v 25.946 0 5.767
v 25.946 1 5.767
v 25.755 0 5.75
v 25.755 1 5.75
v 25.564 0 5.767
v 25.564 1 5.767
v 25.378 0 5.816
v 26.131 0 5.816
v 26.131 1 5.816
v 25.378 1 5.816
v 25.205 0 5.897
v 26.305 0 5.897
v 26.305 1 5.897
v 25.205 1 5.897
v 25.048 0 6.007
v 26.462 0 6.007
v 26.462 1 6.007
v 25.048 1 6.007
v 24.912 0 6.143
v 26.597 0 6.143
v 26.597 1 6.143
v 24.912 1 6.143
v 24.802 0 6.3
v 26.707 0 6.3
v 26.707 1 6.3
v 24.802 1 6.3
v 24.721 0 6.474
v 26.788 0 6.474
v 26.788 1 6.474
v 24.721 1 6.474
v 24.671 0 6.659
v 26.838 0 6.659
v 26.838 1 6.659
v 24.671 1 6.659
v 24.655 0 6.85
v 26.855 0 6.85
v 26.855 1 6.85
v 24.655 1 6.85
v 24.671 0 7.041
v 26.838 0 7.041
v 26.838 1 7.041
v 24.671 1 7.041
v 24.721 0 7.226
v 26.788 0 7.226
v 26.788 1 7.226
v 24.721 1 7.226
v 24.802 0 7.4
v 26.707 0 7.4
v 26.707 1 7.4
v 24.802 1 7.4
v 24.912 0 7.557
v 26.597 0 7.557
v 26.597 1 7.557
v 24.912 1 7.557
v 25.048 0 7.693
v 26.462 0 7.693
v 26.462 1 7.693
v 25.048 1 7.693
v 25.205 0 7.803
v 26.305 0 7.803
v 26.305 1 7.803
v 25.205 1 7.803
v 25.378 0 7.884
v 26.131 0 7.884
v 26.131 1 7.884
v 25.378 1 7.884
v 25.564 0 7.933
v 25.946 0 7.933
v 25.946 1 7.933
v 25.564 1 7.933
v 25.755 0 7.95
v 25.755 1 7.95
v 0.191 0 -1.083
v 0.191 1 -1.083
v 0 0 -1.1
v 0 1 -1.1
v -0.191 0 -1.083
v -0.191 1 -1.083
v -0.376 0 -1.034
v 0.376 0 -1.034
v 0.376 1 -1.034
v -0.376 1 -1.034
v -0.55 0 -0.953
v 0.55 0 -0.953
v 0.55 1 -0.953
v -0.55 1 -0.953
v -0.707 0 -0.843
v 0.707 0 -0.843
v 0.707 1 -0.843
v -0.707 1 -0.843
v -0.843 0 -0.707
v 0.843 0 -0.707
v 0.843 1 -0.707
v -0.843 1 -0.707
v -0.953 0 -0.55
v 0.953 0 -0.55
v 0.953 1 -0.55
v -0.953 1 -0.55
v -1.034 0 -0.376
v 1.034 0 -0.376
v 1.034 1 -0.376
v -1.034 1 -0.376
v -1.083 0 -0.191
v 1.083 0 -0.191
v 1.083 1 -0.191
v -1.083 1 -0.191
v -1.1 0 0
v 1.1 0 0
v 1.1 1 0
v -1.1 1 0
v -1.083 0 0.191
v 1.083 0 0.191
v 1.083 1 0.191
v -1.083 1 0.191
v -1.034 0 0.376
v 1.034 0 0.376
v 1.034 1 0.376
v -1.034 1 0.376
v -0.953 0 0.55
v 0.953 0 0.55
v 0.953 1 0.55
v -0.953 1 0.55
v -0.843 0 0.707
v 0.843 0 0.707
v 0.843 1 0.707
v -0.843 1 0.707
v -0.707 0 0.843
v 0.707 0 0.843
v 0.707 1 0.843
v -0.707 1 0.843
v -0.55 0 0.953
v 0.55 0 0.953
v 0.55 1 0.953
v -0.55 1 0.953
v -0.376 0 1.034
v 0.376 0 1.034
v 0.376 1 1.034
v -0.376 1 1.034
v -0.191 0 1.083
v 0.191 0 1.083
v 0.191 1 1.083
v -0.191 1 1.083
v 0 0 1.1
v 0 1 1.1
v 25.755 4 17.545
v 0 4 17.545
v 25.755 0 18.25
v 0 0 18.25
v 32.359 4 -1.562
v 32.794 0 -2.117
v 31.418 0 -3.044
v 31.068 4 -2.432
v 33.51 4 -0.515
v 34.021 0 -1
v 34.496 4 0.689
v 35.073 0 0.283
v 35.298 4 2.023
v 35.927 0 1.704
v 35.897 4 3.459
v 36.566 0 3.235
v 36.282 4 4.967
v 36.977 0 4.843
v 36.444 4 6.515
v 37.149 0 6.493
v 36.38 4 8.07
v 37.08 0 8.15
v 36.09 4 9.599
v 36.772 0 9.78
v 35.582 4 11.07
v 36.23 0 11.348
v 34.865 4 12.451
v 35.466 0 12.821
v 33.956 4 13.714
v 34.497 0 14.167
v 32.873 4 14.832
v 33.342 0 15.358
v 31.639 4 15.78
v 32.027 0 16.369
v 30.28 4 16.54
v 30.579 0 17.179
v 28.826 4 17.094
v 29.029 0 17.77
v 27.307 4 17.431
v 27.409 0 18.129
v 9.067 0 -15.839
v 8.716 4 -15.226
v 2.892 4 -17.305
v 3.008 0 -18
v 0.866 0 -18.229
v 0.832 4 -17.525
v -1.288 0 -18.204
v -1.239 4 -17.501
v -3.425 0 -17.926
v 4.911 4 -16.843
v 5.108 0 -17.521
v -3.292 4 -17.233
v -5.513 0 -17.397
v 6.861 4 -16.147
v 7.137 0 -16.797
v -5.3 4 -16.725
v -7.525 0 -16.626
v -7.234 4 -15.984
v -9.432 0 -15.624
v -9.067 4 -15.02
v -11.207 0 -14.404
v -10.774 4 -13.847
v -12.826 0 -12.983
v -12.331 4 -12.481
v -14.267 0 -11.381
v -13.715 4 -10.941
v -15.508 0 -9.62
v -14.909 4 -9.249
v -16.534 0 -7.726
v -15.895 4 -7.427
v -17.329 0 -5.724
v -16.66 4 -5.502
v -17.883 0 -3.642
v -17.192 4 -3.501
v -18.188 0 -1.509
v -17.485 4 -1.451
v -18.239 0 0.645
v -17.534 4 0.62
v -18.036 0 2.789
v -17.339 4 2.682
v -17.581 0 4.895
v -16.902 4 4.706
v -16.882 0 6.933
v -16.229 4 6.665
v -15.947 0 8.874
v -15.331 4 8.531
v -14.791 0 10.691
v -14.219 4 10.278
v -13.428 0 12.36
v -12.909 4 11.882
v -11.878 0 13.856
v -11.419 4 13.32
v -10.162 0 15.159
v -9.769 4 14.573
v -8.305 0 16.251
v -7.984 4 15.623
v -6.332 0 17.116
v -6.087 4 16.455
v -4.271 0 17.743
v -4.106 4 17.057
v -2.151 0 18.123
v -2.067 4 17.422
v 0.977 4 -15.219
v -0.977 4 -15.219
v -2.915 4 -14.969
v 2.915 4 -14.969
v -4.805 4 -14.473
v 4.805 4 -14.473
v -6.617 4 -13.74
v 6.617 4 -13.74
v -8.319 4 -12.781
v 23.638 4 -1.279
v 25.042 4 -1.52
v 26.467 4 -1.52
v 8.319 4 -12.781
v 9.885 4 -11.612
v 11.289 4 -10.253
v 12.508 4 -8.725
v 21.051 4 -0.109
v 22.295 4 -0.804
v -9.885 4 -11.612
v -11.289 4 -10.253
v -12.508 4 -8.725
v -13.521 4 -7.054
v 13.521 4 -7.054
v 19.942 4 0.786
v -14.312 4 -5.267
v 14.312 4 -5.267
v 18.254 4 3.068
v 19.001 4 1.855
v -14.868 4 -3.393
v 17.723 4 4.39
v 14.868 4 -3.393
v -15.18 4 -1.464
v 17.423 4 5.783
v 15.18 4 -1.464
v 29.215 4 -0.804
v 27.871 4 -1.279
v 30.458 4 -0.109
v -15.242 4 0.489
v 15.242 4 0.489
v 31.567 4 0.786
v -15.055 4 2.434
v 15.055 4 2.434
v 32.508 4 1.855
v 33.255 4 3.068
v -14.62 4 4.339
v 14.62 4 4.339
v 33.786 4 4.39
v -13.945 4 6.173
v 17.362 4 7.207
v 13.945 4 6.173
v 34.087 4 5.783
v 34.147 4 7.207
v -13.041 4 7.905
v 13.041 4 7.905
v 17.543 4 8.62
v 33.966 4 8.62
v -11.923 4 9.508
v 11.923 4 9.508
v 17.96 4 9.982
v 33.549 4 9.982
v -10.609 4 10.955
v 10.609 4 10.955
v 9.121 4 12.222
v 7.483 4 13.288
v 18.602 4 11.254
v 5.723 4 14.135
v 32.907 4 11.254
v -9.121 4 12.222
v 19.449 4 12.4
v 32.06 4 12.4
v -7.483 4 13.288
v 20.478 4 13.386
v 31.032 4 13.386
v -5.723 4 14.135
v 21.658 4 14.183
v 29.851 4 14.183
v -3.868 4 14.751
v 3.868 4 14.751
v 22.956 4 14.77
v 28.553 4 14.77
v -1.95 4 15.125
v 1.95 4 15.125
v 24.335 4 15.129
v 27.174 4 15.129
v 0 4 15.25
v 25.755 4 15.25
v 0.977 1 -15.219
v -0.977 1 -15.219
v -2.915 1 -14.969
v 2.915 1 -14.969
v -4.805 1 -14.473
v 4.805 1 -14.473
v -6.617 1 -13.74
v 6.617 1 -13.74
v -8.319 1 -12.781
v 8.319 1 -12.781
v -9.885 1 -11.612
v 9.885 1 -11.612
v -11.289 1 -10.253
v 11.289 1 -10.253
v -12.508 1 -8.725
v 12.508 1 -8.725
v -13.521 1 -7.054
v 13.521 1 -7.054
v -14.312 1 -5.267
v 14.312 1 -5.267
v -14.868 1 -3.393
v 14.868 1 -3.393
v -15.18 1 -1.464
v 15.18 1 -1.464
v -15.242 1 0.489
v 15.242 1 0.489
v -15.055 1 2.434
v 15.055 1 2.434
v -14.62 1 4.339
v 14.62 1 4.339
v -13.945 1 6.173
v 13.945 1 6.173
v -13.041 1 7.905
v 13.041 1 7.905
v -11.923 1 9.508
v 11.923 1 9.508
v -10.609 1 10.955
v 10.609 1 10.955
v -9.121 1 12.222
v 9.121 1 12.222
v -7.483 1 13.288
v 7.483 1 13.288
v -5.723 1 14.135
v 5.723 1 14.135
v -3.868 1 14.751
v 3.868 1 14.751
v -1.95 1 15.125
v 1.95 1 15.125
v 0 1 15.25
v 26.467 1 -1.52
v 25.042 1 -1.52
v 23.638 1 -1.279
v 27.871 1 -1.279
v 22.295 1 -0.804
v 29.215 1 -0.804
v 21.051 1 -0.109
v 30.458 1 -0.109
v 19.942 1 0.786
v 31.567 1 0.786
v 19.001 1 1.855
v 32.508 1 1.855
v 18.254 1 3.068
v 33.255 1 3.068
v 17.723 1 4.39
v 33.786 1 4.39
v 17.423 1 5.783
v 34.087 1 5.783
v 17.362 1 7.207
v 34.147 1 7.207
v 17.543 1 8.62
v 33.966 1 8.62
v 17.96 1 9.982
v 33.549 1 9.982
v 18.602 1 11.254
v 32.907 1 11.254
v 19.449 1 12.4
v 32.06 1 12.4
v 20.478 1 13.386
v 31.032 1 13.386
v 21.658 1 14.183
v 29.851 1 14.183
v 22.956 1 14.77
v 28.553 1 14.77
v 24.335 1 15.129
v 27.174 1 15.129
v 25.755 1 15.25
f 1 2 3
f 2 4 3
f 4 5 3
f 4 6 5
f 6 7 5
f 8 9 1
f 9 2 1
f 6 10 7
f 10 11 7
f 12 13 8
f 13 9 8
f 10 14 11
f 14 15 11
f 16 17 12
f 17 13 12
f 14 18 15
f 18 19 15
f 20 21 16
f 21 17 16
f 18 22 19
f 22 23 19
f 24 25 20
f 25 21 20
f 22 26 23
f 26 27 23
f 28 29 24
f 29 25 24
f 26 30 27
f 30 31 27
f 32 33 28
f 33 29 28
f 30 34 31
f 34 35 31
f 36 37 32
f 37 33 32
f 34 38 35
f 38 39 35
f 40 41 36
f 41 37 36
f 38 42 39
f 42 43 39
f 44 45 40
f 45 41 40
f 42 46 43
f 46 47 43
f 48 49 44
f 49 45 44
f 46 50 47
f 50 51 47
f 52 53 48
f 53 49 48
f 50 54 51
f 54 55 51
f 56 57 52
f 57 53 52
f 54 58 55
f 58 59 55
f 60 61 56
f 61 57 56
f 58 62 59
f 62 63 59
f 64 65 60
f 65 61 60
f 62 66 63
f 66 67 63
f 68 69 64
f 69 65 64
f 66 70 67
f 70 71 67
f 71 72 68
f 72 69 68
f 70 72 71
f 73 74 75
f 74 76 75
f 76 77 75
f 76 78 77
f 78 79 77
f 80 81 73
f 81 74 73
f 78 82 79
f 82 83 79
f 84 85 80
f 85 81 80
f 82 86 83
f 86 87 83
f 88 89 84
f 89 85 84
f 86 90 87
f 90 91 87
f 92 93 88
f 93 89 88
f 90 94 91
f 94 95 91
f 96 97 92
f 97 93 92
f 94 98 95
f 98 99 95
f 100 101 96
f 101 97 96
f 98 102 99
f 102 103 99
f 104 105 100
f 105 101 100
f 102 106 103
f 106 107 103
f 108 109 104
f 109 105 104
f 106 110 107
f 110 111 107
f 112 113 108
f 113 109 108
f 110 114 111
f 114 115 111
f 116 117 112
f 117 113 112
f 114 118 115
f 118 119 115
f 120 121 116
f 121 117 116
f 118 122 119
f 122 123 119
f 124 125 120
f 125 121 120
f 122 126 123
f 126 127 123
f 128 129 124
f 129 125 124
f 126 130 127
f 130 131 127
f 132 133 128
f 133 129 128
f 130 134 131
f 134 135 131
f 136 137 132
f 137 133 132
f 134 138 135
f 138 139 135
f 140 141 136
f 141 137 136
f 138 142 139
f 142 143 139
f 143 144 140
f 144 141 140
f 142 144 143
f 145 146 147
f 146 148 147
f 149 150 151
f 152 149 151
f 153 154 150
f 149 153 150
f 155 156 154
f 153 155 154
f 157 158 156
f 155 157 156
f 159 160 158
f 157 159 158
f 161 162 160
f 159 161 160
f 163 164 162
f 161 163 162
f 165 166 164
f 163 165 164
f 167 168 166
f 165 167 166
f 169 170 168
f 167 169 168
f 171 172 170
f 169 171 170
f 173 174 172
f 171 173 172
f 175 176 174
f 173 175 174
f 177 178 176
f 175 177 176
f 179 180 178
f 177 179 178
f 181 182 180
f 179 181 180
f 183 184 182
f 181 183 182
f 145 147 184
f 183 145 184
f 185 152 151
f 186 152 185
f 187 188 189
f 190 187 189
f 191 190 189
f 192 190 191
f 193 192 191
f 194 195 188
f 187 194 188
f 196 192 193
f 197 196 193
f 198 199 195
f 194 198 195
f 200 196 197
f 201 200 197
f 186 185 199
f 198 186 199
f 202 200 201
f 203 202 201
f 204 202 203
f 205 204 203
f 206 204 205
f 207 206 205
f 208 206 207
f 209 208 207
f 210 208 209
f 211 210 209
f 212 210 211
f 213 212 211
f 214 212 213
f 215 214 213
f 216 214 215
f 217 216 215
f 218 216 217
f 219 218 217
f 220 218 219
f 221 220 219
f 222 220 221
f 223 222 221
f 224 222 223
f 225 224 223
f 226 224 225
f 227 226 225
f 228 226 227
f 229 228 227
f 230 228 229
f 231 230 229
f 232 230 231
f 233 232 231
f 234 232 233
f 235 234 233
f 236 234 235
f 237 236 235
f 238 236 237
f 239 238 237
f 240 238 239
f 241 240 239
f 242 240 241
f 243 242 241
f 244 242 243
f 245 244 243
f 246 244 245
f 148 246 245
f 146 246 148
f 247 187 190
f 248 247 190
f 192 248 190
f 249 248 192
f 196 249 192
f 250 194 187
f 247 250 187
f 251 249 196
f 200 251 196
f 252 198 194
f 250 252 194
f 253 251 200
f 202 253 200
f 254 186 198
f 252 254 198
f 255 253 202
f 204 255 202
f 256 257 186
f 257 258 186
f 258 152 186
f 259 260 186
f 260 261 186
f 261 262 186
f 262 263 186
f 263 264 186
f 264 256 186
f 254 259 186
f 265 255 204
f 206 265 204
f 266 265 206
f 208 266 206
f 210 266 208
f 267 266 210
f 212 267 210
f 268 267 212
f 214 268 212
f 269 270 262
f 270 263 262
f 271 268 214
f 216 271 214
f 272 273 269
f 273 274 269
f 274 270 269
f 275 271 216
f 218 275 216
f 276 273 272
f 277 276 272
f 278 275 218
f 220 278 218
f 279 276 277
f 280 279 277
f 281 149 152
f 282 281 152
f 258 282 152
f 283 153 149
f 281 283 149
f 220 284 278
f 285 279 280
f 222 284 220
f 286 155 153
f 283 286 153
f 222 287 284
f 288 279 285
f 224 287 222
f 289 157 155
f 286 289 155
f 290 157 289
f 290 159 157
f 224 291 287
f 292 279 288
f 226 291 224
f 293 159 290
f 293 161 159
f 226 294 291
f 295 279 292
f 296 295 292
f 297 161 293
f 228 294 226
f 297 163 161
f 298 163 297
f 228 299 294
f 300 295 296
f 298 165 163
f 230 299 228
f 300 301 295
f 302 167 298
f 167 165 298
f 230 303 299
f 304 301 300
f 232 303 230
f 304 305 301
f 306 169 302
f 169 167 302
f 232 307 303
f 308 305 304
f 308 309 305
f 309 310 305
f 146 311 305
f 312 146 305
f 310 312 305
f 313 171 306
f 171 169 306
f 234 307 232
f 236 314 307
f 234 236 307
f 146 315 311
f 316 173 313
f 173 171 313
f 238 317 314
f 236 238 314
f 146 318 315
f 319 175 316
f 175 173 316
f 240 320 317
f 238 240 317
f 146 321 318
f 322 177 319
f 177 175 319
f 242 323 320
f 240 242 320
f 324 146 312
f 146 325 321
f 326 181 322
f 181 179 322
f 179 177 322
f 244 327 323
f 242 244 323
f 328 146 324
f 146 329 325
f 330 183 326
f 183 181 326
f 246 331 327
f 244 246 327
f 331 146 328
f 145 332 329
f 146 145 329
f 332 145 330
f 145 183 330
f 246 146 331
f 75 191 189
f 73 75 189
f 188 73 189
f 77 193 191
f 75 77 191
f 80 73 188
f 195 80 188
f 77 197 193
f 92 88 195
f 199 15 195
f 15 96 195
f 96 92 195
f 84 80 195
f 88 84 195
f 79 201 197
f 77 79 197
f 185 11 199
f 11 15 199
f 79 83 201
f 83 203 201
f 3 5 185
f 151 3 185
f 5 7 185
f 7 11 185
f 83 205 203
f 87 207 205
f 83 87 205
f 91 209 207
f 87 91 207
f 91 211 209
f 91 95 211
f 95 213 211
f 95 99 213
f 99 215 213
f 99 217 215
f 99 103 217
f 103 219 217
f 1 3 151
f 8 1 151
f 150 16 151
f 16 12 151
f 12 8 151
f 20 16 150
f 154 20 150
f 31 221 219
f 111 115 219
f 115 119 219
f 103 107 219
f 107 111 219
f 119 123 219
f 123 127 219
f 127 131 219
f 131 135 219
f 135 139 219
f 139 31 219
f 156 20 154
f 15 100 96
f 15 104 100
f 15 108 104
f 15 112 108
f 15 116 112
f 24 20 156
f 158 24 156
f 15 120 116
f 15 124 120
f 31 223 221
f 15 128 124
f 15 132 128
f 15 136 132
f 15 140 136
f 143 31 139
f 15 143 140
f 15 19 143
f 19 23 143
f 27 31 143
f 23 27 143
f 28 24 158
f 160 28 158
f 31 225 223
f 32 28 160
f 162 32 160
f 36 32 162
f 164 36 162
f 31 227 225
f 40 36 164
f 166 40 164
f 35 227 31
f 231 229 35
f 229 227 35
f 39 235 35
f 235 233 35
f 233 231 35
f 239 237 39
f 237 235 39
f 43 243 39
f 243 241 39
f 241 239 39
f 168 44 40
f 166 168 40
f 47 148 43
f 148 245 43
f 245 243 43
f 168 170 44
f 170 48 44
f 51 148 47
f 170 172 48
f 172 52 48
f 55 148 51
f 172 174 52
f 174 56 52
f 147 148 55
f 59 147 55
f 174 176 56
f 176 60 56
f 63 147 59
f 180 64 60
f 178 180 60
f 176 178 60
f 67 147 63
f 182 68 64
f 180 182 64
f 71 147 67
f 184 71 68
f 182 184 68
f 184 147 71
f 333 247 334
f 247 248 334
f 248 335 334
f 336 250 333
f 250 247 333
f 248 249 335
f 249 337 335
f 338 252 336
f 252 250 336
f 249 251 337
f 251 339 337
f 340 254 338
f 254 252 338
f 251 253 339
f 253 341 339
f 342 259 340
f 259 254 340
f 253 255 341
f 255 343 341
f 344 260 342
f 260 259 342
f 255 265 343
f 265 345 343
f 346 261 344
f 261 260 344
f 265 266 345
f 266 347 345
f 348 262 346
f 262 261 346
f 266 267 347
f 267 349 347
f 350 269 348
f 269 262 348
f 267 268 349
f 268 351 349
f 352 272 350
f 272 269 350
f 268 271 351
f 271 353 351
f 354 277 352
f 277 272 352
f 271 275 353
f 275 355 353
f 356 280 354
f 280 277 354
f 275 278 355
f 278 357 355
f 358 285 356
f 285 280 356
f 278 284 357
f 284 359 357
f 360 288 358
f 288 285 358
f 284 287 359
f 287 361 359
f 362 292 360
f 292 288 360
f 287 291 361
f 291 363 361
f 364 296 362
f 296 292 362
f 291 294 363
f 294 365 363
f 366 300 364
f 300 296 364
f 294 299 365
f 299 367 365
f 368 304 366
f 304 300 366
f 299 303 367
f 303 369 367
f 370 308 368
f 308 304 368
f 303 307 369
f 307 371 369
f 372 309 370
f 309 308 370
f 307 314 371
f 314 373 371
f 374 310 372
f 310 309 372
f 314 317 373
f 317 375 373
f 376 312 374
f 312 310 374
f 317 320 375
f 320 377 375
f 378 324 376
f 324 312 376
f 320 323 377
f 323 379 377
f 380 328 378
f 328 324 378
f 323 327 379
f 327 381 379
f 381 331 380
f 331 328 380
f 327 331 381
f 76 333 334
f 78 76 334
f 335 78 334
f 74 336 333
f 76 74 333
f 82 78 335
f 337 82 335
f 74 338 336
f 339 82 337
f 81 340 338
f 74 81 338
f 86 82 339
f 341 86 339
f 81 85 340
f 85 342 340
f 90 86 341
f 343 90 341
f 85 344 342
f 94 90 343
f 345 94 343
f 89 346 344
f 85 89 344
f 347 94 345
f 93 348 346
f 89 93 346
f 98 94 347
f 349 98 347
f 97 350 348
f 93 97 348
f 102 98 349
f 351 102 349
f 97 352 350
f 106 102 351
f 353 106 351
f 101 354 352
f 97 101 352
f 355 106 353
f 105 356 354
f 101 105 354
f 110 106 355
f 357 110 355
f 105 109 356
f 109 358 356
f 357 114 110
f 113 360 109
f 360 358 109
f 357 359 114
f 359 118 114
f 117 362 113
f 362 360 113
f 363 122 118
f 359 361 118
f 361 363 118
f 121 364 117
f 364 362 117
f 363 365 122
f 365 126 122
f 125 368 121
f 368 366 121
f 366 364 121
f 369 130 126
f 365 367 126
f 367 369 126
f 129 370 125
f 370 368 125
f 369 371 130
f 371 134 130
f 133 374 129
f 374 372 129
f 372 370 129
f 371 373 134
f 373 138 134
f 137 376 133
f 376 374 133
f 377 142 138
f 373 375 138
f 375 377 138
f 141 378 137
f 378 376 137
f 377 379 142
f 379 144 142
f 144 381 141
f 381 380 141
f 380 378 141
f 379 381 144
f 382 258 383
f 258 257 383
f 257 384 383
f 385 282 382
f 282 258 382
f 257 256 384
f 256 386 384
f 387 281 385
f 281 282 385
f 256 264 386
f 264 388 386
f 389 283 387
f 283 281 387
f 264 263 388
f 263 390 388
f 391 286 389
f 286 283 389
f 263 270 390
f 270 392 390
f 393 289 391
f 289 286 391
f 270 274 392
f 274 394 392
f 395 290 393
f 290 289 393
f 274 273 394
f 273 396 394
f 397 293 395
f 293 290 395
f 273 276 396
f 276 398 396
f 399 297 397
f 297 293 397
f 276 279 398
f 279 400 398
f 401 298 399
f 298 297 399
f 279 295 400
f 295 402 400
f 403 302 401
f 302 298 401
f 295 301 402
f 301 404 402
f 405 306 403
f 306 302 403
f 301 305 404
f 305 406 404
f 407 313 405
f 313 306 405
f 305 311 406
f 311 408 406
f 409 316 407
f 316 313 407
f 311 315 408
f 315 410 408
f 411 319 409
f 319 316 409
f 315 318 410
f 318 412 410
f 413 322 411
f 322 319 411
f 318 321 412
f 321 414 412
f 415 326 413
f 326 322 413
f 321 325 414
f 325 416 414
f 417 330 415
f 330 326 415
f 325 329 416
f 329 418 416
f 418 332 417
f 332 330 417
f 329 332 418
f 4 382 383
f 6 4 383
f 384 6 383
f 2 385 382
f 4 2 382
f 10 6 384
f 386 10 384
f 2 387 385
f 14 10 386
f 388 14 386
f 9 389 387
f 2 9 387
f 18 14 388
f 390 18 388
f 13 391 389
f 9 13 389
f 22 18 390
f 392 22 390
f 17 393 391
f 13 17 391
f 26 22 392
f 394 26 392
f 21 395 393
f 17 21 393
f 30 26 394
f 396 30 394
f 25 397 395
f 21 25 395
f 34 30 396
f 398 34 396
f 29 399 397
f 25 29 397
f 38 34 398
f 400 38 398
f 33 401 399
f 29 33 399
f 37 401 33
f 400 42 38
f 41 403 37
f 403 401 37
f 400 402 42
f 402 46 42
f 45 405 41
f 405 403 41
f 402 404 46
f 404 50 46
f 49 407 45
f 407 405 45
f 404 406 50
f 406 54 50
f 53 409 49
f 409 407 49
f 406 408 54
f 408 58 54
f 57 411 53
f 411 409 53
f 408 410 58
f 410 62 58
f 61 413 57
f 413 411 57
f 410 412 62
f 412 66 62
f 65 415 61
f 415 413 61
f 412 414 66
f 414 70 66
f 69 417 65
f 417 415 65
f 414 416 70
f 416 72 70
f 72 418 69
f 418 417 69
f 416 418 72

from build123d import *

# Parameters (mm, degrees)
BOSS_EXTRUDE1_DEPTH = 4
BOSS_EXTRUDE1_DRAFT = 10
CUT_EXTRUDE2_START  = 4
SKETCH1_5_R         = 1.1
CUT_EXTRUDE2_DEPTH  = 4
CUT_EXTRUDE3_START  = 4
SKETCH1_6_R         = 15.25
SKETCH1_6_R_2       = 1.1
SKETCH1_6_R_3       = 8.4
CUT_EXTRUDE3_DEPTH  = 3


with BuildPart() as part:
    # Sketch1 → Boss-Extrude1 (with draft: the straight prism first)
    with BuildSketch(Plane(origin=(0, 0, 0), x_dir=(1, 0, 0), z_dir=(0, 1, 0))):
        with BuildLine():
            ThreePointArc((9.066590645, 15.838542675), (-17.636835088, 4.690900563), (0, -18.25))
            Line((0, -18.25), (25.754611238, -18.25))
            ThreePointArc((25.754611238, -18.25), (36.771593155, -9.780206379), (31.418125394, 3.043665013))
            Line((31.418125394, 3.043665013), (9.066590645, 15.838542675))
        make_face()
    extrude(amount=BOSS_EXTRUDE1_DEPTH)
    # Boss-Extrude1: the draft: its side faces are tilted about the plane it starts from
    boss_extrude1_sides = [part.faces().sort_by_distance(p)[0] for p in [
        (-17.636835088, 2, -4.690900563),
        (12.877305619, 2, 18.25),
        (36.771593155, 2, 9.780206379),
        (20.24235802, 2, -9.441103844),
    ]]
    draft(boss_extrude1_sides, Plane(origin=(0, 0, 0), x_dir=(1, 0, 0), z_dir=(0, 1, 0)), BOSS_EXTRUDE1_DRAFT)

    # Sketch1<5> → Cut-Extrude2 (cut)
    with BuildSketch(Plane(origin=(0, 0, 0), x_dir=(1, 0, 0), z_dir=(0, 1, 0)).offset(CUT_EXTRUDE2_START)):
        with Locations(Location((0, 0, 0), (0, 0, 270))):
            Circle(SKETCH1_5_R)
        with Locations(Location((25.754611238, -6.85, 0), (0, 0, 270))):
            Circle(SKETCH1_5_R)
    extrude(amount=-CUT_EXTRUDE2_DEPTH, mode=Mode.SUBTRACT)

    # Sketch1<6> → Cut-Extrude3 (cut)
    # profile 1 of 2: a face of its own
    with BuildSketch(Plane(origin=(0, 0, 0), x_dir=(1, 0, 0), z_dir=(0, 1, 0)).offset(CUT_EXTRUDE3_START)):
        with Locations(Location((0, 0, 0), (0, 0, 270))):
            Circle(SKETCH1_6_R)
        with Locations(Location((0, 0, 0), (0, 0, 270))):
            Circle(SKETCH1_6_R_2, mode=Mode.SUBTRACT)
    # profile 2 of 2: a face of its own
    with BuildSketch(Plane(origin=(0, 0, 0), x_dir=(1, 0, 0), z_dir=(0, 1, 0)).offset(CUT_EXTRUDE3_START)):
        with Locations(Location((25.754611238, -6.85, 0), (0, 0, 270))):
            Circle(SKETCH1_6_R_3)
        with Locations(Location((25.754611238, -6.85, 0), (0, 0, 270))):
            Circle(SKETCH1_6_R_2, mode=Mode.SUBTRACT)
    extrude(amount=-CUT_EXTRUDE3_DEPTH, mode=Mode.SUBTRACT)


solid = part.part
